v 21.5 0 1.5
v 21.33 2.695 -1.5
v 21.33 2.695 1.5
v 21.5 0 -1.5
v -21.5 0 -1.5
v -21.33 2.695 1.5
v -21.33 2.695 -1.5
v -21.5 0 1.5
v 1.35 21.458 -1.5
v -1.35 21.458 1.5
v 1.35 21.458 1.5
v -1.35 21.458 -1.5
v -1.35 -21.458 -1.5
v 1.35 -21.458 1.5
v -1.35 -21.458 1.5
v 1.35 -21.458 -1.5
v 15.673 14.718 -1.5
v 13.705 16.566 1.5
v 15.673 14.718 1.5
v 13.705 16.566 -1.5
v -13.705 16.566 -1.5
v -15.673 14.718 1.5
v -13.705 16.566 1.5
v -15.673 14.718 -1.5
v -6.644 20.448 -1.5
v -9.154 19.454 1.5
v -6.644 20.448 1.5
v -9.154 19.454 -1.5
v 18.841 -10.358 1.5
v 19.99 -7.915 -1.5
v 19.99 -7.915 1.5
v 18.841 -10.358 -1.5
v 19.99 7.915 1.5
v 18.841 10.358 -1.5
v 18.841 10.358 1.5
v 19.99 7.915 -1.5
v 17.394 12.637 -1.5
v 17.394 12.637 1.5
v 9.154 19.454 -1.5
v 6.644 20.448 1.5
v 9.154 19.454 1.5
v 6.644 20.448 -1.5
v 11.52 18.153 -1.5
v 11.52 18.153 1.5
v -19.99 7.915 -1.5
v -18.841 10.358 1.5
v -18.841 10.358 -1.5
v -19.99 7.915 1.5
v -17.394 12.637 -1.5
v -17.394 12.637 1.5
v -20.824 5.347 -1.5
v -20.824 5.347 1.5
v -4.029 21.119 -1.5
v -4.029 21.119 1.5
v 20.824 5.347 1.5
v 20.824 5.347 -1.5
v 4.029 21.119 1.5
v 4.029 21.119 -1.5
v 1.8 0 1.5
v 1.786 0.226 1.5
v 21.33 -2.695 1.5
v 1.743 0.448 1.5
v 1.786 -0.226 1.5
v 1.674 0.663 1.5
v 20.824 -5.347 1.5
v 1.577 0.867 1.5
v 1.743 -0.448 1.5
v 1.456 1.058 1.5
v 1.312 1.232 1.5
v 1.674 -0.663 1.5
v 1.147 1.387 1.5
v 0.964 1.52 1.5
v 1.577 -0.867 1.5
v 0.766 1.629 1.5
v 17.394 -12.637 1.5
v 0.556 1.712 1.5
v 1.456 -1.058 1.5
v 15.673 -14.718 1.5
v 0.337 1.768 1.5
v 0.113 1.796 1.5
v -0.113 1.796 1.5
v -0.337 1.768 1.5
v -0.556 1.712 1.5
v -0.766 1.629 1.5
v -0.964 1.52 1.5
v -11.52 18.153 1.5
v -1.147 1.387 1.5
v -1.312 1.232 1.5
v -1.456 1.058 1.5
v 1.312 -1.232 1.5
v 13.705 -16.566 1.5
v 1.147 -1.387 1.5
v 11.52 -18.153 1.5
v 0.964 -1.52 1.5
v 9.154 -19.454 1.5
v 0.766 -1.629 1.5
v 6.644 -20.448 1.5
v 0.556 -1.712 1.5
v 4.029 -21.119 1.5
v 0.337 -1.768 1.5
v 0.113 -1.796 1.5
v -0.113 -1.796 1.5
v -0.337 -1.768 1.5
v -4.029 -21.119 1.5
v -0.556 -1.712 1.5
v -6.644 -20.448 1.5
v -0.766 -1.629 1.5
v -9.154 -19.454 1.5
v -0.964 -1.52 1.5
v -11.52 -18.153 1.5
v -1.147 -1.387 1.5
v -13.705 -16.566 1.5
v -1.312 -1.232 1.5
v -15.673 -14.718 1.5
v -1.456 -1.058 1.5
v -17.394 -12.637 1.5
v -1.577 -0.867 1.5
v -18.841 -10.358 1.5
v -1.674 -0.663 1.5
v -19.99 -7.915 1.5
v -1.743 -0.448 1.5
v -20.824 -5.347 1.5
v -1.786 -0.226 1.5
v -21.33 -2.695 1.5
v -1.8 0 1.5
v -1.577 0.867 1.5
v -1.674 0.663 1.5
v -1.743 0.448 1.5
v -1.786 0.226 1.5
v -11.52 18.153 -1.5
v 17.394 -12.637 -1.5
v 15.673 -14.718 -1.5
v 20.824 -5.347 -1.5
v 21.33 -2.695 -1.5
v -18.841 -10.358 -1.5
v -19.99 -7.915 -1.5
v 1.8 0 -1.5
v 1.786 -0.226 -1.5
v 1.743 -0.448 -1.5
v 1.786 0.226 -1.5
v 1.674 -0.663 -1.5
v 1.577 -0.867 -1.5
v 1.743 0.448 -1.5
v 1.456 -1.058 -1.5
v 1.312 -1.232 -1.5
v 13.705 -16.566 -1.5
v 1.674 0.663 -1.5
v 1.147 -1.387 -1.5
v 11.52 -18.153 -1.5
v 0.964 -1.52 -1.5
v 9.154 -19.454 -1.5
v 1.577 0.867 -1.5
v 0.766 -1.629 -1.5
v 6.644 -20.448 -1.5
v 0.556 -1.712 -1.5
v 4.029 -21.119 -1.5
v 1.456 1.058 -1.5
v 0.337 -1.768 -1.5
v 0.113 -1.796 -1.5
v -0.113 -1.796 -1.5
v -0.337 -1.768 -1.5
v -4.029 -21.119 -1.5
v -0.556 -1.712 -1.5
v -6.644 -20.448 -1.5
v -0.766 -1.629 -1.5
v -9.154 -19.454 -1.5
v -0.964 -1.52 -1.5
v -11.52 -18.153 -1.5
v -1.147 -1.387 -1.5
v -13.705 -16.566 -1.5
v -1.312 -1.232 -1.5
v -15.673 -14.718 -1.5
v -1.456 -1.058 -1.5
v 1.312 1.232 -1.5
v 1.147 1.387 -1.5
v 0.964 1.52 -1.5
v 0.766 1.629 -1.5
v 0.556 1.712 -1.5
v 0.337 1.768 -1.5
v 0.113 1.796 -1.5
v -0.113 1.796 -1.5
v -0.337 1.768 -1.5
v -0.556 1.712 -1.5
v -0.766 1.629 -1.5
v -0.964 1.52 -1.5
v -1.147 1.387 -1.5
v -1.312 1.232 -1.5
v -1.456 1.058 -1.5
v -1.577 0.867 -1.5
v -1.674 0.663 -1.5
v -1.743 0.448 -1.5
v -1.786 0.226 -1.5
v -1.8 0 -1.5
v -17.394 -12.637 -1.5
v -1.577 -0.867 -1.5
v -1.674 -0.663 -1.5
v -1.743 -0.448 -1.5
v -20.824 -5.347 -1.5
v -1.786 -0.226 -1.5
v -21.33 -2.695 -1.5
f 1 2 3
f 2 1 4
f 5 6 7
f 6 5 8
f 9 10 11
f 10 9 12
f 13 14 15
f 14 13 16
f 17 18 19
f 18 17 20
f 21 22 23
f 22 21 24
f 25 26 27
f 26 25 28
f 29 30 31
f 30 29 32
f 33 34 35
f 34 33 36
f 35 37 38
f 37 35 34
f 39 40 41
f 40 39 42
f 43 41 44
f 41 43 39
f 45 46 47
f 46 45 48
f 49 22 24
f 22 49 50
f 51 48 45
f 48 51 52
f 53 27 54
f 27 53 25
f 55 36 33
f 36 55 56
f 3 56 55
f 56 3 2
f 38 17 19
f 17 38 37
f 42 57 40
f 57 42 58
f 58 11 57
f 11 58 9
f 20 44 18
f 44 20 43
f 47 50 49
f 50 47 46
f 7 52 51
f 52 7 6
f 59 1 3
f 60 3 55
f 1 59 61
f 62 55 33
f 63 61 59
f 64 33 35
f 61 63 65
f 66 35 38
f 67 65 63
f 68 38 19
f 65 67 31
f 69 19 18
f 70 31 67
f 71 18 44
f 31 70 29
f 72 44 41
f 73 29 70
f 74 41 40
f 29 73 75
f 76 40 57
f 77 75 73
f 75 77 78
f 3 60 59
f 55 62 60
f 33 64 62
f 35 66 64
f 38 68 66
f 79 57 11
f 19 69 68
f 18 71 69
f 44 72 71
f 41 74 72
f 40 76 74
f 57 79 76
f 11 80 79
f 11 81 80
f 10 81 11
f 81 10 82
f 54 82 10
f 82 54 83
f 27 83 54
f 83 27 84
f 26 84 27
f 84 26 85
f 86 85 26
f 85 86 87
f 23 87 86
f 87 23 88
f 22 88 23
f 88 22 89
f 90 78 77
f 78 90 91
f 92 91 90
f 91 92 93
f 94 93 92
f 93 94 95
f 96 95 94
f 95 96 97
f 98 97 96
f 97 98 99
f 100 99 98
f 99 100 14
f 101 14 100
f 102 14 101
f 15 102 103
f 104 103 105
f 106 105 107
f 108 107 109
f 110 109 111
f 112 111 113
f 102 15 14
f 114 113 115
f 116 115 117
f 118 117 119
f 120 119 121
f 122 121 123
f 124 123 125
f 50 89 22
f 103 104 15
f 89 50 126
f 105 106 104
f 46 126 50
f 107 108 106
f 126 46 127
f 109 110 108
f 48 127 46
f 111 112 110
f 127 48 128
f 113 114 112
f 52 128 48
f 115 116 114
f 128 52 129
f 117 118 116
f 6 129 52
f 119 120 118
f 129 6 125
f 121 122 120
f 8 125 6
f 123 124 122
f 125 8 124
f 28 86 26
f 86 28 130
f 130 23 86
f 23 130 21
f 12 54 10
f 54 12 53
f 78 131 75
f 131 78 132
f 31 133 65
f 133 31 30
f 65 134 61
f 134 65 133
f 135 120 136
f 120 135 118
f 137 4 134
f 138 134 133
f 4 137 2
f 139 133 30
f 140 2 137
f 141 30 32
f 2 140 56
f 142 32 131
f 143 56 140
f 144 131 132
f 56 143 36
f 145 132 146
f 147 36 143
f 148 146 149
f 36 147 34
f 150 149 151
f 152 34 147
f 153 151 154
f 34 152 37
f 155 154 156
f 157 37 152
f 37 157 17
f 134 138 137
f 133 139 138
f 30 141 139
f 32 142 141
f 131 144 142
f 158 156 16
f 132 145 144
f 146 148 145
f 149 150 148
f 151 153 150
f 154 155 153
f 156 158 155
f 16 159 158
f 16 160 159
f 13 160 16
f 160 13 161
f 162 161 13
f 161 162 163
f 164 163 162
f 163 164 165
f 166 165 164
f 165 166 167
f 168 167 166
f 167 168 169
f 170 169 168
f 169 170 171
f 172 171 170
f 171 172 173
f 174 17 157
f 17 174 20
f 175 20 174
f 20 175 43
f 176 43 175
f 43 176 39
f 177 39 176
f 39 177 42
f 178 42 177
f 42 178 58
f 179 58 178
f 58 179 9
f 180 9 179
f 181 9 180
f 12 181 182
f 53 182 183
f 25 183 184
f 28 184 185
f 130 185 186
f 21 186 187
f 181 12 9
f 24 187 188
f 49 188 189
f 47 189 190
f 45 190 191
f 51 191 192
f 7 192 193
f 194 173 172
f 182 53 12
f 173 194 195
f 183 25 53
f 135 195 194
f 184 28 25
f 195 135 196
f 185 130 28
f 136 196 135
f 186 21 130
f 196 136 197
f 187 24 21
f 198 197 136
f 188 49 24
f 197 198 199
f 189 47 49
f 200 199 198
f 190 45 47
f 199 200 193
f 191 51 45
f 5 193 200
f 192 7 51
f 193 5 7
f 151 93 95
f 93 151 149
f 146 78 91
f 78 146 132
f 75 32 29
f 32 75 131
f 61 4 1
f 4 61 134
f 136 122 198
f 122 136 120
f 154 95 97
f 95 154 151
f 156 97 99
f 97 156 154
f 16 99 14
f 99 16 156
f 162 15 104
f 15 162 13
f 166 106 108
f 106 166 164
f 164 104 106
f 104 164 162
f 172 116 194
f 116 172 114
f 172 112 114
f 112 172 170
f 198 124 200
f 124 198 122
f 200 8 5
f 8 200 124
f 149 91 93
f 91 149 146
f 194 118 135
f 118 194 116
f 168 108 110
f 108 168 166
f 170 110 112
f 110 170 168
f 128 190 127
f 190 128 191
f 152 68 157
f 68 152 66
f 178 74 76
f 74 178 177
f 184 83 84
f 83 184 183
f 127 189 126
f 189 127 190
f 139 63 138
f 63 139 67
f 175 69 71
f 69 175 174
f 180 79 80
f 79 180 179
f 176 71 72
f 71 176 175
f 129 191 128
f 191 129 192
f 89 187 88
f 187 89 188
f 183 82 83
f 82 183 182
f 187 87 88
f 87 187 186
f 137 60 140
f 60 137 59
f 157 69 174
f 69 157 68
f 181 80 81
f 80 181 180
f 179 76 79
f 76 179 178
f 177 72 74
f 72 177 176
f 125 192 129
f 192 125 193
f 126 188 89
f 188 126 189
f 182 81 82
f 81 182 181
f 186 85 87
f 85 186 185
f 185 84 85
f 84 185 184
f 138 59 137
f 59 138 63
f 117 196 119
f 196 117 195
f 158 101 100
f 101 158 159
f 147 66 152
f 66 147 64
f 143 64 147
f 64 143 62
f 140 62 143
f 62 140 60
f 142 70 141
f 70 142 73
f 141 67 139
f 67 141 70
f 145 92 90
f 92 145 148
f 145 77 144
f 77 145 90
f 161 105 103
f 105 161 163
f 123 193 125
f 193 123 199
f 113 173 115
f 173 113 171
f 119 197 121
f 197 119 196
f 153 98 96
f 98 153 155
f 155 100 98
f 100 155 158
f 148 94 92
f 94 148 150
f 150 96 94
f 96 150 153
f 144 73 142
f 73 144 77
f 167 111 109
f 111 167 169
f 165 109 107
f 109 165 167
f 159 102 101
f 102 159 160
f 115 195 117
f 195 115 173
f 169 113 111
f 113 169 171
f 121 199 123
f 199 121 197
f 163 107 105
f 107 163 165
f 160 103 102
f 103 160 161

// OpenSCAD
$fn = 50;


difference() {
	union() {
		translate(v = [0, 0, -1.5000000000]) {
			cylinder(h = 3, r = 21.5000000000);
		}
	}
	union() {
		translate(v = [0, 0, -100.0000000000]) {
			cylinder(h = 200, r = 1.8000000000);
		}
	}
}
